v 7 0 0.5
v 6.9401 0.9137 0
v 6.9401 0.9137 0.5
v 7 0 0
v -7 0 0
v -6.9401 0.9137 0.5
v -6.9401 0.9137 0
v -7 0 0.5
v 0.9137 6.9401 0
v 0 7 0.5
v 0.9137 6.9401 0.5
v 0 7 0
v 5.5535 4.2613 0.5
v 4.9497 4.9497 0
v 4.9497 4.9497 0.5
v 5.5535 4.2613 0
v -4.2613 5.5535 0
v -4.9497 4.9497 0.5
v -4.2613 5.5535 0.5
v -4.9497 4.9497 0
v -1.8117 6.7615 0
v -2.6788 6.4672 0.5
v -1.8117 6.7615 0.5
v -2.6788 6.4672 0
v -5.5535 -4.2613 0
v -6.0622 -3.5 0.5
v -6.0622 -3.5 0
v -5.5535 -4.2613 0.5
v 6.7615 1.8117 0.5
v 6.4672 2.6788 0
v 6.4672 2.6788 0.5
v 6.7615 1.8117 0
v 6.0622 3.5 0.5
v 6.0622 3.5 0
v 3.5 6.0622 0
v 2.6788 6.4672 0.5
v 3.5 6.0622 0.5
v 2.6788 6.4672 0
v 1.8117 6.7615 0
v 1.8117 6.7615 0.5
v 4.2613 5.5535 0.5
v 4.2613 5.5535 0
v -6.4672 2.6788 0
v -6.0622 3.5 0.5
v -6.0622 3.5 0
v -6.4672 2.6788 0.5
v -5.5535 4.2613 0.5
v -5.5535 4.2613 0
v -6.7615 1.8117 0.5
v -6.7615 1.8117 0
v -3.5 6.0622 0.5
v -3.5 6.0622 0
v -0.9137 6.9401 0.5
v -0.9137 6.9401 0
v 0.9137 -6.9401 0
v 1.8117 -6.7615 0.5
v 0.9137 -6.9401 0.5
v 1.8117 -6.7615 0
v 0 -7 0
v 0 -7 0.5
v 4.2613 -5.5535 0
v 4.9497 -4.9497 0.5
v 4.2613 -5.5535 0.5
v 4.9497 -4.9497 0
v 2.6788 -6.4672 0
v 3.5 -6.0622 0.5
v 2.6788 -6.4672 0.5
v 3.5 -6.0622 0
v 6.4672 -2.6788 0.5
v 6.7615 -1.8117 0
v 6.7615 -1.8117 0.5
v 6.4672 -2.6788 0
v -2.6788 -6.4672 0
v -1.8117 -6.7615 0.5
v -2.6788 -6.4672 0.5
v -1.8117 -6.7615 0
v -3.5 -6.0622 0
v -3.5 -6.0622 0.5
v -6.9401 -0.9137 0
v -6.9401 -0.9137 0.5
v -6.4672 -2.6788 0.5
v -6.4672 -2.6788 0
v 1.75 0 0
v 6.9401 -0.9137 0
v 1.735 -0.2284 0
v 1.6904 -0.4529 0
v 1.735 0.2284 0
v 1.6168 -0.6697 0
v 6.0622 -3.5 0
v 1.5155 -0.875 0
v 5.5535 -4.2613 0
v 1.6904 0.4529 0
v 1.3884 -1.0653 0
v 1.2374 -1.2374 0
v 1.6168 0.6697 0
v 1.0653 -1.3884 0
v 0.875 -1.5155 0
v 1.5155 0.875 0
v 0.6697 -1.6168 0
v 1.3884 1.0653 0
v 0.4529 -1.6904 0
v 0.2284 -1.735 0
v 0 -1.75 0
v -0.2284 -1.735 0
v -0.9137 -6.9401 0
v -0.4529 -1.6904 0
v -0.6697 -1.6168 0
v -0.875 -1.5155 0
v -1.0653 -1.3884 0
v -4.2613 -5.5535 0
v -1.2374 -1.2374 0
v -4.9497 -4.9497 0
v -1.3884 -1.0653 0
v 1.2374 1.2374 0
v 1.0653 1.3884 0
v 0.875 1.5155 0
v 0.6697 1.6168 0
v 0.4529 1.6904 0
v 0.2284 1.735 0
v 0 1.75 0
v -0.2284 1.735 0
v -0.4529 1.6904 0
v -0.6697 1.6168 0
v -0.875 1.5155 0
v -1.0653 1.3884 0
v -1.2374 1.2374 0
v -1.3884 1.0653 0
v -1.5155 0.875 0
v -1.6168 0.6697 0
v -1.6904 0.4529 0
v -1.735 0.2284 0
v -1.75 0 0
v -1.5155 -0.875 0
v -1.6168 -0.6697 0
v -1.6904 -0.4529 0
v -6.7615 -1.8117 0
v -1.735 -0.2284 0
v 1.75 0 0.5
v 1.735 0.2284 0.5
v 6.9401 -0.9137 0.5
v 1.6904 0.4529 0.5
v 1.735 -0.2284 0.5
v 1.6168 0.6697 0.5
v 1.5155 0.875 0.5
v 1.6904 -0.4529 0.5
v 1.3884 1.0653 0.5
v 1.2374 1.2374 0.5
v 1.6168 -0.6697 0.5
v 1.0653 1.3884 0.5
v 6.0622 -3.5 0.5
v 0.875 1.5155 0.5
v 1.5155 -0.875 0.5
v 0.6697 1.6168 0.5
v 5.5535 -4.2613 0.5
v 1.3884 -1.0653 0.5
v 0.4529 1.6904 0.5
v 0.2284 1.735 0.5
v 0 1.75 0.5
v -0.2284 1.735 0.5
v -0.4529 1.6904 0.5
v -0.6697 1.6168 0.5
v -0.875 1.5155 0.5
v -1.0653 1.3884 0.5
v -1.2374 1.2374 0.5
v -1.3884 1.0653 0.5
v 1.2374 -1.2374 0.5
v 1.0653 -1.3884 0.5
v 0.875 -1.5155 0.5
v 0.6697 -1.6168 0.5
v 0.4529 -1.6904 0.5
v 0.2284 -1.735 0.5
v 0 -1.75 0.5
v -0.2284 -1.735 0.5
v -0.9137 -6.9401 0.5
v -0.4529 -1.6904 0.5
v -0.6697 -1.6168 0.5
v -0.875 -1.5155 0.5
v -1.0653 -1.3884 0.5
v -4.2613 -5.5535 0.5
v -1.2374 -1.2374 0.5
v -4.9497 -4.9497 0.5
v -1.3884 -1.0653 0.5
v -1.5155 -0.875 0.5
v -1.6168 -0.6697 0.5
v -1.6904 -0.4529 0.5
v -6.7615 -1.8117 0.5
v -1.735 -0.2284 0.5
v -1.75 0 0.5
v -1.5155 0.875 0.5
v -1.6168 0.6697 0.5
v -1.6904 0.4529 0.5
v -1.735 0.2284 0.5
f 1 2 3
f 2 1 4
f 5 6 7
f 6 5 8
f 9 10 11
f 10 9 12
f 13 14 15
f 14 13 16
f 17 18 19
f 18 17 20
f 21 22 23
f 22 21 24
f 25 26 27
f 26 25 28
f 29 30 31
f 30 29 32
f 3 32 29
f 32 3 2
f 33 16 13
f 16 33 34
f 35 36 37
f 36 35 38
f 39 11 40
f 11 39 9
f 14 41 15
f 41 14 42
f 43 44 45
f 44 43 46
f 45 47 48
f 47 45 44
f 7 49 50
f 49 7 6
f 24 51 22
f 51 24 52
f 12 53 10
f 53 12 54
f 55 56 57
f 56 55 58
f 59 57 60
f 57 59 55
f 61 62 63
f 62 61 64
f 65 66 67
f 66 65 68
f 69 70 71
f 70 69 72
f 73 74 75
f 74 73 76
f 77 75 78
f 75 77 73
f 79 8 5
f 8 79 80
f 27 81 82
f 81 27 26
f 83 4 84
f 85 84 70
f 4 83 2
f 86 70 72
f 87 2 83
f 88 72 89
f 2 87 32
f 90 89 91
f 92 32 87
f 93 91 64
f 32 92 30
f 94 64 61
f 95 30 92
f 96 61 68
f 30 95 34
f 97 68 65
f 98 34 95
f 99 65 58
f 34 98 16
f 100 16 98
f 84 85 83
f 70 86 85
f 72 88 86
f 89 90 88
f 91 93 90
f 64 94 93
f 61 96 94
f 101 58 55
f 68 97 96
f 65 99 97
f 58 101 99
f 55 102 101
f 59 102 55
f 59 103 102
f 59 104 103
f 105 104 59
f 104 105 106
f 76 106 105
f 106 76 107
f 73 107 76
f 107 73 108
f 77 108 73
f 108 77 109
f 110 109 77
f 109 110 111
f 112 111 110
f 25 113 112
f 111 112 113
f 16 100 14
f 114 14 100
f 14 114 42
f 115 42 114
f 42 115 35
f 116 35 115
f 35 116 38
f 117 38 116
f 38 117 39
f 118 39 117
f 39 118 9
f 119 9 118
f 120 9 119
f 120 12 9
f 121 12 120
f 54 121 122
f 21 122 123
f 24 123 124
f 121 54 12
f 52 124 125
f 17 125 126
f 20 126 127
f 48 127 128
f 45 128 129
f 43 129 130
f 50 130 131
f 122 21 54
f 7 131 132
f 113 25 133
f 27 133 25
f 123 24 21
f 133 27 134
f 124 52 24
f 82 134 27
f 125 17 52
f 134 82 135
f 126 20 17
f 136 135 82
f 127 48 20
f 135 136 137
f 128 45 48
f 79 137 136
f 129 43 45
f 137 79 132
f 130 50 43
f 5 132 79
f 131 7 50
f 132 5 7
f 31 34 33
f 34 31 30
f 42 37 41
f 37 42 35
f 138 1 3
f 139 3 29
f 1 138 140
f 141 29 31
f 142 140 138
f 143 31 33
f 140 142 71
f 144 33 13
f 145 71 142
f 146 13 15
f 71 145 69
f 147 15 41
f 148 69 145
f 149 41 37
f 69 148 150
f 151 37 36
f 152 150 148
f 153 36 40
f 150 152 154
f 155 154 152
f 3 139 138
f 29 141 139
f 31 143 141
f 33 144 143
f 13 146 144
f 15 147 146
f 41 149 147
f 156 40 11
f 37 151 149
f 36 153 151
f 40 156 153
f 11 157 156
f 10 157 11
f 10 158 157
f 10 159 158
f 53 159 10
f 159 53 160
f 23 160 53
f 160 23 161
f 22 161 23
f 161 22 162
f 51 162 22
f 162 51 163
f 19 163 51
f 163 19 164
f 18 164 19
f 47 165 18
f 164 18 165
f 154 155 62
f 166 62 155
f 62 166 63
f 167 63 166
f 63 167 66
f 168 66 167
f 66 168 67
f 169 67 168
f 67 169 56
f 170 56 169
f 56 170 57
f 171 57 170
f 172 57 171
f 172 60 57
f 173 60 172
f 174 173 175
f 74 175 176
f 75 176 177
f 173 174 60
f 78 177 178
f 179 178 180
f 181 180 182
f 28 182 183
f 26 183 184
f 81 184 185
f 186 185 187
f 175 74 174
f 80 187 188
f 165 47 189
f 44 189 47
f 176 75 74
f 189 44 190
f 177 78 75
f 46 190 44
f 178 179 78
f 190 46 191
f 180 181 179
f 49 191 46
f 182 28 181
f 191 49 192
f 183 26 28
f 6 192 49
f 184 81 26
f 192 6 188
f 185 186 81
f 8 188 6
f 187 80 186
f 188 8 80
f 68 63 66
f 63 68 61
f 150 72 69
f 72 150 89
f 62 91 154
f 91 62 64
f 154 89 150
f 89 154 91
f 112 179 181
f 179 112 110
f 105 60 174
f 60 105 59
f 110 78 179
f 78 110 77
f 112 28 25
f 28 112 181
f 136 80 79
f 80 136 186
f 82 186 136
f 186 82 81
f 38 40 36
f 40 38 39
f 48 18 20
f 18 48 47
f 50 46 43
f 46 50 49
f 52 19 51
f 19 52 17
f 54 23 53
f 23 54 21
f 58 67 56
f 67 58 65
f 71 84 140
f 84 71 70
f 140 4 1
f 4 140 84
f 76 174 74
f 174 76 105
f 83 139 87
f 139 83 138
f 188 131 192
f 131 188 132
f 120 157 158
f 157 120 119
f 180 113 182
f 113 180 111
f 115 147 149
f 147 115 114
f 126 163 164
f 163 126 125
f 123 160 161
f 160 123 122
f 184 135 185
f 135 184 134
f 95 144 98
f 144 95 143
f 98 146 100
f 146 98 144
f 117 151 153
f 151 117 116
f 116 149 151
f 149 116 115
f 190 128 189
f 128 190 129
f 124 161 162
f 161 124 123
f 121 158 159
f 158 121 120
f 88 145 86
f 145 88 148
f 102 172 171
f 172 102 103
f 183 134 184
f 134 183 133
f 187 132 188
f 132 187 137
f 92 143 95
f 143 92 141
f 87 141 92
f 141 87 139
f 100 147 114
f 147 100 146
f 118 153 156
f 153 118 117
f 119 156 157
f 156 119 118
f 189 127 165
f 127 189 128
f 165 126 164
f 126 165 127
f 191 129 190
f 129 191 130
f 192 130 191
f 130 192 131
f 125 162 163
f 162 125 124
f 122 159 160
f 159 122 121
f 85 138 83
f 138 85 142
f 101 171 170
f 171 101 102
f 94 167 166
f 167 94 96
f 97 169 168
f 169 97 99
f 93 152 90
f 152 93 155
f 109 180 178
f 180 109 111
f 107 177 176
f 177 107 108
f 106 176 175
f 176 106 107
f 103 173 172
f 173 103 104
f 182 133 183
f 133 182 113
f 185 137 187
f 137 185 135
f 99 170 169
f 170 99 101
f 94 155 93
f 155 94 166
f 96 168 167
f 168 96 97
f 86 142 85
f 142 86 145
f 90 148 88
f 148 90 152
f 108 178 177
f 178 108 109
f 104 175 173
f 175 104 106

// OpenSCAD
// Gen-DW — assembly gap shim, h = run_clear (rotor face -> flange); copper is inside the flanges
include <parameters.scad>;
$fn = 48;
difference() {
    cylinder(d=spacer_pad_od, h=gap_spacer_h);
    translate([0, 0, -0.1]) cylinder(d=spacer_pad_id, h=gap_spacer_h + 0.2);
}
